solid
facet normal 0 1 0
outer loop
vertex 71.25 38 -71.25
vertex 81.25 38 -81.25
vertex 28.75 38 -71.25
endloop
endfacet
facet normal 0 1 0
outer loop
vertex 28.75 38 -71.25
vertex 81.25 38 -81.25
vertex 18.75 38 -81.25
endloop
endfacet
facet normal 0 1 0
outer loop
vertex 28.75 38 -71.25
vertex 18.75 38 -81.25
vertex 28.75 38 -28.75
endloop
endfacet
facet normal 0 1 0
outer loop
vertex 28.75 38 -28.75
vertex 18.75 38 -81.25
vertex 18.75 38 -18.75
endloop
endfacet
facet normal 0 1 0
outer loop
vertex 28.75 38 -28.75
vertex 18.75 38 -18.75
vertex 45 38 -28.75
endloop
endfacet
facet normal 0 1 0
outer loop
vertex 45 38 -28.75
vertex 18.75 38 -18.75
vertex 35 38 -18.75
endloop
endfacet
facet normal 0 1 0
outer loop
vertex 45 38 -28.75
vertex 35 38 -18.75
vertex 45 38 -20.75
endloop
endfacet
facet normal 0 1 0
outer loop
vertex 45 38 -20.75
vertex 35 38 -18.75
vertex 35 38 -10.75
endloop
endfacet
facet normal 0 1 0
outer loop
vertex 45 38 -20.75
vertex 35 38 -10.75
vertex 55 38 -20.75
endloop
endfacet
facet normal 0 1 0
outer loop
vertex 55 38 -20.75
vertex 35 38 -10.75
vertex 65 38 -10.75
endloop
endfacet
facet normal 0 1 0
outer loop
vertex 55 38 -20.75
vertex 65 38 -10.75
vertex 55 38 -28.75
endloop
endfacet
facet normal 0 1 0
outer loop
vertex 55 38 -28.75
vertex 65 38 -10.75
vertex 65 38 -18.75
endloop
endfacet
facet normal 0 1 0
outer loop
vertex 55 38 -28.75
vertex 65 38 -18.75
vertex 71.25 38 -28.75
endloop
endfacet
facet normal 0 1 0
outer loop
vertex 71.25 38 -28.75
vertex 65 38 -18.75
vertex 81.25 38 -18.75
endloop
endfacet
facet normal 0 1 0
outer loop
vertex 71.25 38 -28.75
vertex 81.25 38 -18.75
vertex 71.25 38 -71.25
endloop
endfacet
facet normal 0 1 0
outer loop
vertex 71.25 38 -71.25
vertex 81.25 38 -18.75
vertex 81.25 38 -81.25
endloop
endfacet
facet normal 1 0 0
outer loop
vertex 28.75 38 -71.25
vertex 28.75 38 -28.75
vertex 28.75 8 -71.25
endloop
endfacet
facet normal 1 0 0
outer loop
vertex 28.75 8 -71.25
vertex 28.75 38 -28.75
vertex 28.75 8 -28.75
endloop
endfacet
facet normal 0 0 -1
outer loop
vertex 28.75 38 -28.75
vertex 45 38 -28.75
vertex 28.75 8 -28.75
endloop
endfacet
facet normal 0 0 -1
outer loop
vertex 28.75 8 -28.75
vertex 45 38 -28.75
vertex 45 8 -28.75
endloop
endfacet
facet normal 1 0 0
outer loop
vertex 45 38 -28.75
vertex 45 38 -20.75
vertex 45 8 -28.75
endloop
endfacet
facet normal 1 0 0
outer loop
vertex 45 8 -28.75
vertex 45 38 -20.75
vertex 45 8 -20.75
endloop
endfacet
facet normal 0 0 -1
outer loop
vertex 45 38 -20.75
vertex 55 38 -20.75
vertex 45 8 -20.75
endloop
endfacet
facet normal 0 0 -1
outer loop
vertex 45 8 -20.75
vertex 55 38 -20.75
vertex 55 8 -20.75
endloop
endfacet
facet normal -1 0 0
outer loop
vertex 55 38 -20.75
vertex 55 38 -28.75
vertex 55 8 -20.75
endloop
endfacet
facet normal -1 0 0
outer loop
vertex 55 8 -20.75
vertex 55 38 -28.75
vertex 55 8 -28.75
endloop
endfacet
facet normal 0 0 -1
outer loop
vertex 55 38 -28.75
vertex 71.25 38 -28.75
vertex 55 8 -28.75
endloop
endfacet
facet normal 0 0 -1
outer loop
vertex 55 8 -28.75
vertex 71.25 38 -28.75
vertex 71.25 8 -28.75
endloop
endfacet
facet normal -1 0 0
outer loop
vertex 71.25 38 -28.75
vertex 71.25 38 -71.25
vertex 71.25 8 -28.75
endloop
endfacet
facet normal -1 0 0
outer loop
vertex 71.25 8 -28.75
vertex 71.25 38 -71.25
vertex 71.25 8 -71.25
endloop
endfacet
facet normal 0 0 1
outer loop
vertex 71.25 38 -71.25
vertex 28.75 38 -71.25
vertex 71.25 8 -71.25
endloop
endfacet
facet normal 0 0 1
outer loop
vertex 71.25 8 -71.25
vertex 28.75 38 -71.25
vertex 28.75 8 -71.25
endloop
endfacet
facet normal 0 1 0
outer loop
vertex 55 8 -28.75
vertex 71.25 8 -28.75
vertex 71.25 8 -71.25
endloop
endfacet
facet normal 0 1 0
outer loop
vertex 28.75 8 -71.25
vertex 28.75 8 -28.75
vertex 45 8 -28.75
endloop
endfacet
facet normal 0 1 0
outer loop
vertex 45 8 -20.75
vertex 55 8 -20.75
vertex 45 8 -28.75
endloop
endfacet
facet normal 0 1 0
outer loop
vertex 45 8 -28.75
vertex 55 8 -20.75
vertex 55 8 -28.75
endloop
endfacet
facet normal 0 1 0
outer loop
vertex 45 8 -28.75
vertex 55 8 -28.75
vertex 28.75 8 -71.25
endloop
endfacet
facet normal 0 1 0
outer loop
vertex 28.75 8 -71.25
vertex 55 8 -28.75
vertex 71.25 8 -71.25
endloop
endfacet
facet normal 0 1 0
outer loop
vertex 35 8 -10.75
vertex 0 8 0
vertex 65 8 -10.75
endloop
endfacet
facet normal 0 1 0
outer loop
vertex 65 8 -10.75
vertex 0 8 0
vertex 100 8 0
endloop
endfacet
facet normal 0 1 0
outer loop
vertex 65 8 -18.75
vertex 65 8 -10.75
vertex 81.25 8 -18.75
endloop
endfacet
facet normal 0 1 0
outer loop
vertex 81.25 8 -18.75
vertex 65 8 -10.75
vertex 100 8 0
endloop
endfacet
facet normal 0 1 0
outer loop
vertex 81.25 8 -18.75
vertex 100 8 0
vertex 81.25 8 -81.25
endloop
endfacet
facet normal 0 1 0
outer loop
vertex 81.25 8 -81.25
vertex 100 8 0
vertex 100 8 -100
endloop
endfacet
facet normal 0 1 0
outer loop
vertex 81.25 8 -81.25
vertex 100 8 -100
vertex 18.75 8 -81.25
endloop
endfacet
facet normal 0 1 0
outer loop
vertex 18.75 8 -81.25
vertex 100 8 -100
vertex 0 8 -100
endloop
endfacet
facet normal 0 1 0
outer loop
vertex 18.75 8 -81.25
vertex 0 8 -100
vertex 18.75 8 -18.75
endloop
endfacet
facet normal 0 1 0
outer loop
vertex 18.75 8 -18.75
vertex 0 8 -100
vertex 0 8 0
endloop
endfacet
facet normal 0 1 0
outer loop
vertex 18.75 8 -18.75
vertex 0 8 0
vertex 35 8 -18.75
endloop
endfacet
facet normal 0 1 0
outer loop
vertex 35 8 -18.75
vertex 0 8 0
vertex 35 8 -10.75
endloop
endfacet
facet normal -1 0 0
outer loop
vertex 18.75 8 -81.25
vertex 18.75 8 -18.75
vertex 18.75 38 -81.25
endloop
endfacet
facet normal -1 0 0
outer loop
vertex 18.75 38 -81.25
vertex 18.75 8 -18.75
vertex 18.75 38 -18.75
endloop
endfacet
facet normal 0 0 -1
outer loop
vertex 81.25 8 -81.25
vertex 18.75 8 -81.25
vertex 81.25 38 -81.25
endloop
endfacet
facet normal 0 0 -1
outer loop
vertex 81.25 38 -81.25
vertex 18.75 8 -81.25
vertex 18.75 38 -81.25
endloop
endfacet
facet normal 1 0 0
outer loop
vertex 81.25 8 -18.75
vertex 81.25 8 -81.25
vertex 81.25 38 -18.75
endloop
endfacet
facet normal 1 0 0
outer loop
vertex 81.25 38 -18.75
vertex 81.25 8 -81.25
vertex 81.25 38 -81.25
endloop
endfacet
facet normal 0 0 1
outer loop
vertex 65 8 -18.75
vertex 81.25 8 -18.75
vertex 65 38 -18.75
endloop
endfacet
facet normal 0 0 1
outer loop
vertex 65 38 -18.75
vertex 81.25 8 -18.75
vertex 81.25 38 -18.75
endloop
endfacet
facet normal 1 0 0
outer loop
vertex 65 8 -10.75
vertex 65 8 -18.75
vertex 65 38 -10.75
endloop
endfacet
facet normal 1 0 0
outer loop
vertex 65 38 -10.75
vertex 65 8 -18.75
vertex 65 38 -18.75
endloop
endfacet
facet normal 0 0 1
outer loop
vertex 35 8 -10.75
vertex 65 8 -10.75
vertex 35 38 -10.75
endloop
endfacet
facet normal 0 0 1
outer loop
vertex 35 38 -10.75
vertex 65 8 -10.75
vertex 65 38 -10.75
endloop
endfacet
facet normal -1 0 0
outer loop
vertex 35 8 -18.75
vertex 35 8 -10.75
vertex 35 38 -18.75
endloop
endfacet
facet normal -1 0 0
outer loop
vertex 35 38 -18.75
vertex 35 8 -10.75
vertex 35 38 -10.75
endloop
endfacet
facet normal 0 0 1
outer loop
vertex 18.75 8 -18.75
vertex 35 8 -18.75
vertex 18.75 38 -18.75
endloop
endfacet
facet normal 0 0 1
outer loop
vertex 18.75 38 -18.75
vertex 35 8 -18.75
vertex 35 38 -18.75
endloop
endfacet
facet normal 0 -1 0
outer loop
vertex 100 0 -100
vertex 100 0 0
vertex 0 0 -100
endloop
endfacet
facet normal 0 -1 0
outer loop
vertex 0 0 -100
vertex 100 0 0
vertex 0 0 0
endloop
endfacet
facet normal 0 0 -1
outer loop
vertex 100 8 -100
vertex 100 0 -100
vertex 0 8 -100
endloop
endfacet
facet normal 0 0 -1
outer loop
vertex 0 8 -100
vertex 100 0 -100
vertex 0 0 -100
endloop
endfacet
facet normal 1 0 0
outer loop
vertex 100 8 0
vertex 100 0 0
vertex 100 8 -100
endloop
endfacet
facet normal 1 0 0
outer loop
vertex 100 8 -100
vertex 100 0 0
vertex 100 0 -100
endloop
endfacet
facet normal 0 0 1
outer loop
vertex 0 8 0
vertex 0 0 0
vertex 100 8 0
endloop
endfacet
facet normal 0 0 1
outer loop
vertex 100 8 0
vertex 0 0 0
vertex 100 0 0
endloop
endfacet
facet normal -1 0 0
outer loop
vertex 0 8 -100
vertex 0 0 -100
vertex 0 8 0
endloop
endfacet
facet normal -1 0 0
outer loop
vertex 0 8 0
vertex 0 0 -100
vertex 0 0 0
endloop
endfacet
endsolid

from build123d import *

# Parameters (mm, degrees)
IZIM1_W                     = 100
IZIM1_H                     = 100
Y_KSEKLIK_EKSTR_ZYON1_DEPTH = 8
IZIM2_W                     = 100
IZIM2_H                     = 100
Y_KSEKLIK_EKSTR_ZYON2_DEPTH = 30
IZIM3_W                     = 100
IZIM3_H                     = 100
KES_EKSTR_ZYON1_DEPTH       = 30


with BuildPart() as part:
    # Çizim1 → Yükseklik-Ekstrüzyon1 (new body)
    with BuildSketch(Plane(origin=(0, 0, 0), x_dir=(1, 0, 0), z_dir=(0, 1, 0))):
        with Locations((50, 50)):
            Rectangle(IZIM1_W, IZIM1_H)
    extrude(amount=Y_KSEKLIK_EKSTR_ZYON1_DEPTH)

    # Çizim2 → Yükseklik-Ekstrüzyon2 (add)
    with BuildSketch(Plane(origin=(0, 8, 0), x_dir=(1, 0, 0), z_dir=(0, 1, 0))):
        with Locations((50, 50)):
            Rectangle(IZIM2_W, IZIM2_H)
        Polygon((55, 28.75), (71.25, 28.75), (71.25, 71.25), (28.75, 71.25), (28.75, 28.75), (45, 28.75), (45, 20.75), (55, 20.75), align=None, mode=Mode.SUBTRACT)
    extrude(amount=Y_KSEKLIK_EKSTR_ZYON2_DEPTH)

    # Çizim3 → Kes-Ekstrüzyon1 (cut)
    with BuildSketch(Plane(origin=(0, 38, 0), x_dir=(1, 0, 0), z_dir=(0, 1, 0))):
        with Locations((50, 50)):
            Rectangle(IZIM3_W, IZIM3_H)
        Polygon((18.75, 81.25), (81.25, 81.25), (81.25, 18.75), (65, 18.75), (65, 10.75), (35, 10.75), (35, 18.75), (18.75, 18.75), align=None, mode=Mode.SUBTRACT)
    extrude(amount=-KES_EKSTR_ZYON1_DEPTH, mode=Mode.SUBTRACT)


solid = part.part
